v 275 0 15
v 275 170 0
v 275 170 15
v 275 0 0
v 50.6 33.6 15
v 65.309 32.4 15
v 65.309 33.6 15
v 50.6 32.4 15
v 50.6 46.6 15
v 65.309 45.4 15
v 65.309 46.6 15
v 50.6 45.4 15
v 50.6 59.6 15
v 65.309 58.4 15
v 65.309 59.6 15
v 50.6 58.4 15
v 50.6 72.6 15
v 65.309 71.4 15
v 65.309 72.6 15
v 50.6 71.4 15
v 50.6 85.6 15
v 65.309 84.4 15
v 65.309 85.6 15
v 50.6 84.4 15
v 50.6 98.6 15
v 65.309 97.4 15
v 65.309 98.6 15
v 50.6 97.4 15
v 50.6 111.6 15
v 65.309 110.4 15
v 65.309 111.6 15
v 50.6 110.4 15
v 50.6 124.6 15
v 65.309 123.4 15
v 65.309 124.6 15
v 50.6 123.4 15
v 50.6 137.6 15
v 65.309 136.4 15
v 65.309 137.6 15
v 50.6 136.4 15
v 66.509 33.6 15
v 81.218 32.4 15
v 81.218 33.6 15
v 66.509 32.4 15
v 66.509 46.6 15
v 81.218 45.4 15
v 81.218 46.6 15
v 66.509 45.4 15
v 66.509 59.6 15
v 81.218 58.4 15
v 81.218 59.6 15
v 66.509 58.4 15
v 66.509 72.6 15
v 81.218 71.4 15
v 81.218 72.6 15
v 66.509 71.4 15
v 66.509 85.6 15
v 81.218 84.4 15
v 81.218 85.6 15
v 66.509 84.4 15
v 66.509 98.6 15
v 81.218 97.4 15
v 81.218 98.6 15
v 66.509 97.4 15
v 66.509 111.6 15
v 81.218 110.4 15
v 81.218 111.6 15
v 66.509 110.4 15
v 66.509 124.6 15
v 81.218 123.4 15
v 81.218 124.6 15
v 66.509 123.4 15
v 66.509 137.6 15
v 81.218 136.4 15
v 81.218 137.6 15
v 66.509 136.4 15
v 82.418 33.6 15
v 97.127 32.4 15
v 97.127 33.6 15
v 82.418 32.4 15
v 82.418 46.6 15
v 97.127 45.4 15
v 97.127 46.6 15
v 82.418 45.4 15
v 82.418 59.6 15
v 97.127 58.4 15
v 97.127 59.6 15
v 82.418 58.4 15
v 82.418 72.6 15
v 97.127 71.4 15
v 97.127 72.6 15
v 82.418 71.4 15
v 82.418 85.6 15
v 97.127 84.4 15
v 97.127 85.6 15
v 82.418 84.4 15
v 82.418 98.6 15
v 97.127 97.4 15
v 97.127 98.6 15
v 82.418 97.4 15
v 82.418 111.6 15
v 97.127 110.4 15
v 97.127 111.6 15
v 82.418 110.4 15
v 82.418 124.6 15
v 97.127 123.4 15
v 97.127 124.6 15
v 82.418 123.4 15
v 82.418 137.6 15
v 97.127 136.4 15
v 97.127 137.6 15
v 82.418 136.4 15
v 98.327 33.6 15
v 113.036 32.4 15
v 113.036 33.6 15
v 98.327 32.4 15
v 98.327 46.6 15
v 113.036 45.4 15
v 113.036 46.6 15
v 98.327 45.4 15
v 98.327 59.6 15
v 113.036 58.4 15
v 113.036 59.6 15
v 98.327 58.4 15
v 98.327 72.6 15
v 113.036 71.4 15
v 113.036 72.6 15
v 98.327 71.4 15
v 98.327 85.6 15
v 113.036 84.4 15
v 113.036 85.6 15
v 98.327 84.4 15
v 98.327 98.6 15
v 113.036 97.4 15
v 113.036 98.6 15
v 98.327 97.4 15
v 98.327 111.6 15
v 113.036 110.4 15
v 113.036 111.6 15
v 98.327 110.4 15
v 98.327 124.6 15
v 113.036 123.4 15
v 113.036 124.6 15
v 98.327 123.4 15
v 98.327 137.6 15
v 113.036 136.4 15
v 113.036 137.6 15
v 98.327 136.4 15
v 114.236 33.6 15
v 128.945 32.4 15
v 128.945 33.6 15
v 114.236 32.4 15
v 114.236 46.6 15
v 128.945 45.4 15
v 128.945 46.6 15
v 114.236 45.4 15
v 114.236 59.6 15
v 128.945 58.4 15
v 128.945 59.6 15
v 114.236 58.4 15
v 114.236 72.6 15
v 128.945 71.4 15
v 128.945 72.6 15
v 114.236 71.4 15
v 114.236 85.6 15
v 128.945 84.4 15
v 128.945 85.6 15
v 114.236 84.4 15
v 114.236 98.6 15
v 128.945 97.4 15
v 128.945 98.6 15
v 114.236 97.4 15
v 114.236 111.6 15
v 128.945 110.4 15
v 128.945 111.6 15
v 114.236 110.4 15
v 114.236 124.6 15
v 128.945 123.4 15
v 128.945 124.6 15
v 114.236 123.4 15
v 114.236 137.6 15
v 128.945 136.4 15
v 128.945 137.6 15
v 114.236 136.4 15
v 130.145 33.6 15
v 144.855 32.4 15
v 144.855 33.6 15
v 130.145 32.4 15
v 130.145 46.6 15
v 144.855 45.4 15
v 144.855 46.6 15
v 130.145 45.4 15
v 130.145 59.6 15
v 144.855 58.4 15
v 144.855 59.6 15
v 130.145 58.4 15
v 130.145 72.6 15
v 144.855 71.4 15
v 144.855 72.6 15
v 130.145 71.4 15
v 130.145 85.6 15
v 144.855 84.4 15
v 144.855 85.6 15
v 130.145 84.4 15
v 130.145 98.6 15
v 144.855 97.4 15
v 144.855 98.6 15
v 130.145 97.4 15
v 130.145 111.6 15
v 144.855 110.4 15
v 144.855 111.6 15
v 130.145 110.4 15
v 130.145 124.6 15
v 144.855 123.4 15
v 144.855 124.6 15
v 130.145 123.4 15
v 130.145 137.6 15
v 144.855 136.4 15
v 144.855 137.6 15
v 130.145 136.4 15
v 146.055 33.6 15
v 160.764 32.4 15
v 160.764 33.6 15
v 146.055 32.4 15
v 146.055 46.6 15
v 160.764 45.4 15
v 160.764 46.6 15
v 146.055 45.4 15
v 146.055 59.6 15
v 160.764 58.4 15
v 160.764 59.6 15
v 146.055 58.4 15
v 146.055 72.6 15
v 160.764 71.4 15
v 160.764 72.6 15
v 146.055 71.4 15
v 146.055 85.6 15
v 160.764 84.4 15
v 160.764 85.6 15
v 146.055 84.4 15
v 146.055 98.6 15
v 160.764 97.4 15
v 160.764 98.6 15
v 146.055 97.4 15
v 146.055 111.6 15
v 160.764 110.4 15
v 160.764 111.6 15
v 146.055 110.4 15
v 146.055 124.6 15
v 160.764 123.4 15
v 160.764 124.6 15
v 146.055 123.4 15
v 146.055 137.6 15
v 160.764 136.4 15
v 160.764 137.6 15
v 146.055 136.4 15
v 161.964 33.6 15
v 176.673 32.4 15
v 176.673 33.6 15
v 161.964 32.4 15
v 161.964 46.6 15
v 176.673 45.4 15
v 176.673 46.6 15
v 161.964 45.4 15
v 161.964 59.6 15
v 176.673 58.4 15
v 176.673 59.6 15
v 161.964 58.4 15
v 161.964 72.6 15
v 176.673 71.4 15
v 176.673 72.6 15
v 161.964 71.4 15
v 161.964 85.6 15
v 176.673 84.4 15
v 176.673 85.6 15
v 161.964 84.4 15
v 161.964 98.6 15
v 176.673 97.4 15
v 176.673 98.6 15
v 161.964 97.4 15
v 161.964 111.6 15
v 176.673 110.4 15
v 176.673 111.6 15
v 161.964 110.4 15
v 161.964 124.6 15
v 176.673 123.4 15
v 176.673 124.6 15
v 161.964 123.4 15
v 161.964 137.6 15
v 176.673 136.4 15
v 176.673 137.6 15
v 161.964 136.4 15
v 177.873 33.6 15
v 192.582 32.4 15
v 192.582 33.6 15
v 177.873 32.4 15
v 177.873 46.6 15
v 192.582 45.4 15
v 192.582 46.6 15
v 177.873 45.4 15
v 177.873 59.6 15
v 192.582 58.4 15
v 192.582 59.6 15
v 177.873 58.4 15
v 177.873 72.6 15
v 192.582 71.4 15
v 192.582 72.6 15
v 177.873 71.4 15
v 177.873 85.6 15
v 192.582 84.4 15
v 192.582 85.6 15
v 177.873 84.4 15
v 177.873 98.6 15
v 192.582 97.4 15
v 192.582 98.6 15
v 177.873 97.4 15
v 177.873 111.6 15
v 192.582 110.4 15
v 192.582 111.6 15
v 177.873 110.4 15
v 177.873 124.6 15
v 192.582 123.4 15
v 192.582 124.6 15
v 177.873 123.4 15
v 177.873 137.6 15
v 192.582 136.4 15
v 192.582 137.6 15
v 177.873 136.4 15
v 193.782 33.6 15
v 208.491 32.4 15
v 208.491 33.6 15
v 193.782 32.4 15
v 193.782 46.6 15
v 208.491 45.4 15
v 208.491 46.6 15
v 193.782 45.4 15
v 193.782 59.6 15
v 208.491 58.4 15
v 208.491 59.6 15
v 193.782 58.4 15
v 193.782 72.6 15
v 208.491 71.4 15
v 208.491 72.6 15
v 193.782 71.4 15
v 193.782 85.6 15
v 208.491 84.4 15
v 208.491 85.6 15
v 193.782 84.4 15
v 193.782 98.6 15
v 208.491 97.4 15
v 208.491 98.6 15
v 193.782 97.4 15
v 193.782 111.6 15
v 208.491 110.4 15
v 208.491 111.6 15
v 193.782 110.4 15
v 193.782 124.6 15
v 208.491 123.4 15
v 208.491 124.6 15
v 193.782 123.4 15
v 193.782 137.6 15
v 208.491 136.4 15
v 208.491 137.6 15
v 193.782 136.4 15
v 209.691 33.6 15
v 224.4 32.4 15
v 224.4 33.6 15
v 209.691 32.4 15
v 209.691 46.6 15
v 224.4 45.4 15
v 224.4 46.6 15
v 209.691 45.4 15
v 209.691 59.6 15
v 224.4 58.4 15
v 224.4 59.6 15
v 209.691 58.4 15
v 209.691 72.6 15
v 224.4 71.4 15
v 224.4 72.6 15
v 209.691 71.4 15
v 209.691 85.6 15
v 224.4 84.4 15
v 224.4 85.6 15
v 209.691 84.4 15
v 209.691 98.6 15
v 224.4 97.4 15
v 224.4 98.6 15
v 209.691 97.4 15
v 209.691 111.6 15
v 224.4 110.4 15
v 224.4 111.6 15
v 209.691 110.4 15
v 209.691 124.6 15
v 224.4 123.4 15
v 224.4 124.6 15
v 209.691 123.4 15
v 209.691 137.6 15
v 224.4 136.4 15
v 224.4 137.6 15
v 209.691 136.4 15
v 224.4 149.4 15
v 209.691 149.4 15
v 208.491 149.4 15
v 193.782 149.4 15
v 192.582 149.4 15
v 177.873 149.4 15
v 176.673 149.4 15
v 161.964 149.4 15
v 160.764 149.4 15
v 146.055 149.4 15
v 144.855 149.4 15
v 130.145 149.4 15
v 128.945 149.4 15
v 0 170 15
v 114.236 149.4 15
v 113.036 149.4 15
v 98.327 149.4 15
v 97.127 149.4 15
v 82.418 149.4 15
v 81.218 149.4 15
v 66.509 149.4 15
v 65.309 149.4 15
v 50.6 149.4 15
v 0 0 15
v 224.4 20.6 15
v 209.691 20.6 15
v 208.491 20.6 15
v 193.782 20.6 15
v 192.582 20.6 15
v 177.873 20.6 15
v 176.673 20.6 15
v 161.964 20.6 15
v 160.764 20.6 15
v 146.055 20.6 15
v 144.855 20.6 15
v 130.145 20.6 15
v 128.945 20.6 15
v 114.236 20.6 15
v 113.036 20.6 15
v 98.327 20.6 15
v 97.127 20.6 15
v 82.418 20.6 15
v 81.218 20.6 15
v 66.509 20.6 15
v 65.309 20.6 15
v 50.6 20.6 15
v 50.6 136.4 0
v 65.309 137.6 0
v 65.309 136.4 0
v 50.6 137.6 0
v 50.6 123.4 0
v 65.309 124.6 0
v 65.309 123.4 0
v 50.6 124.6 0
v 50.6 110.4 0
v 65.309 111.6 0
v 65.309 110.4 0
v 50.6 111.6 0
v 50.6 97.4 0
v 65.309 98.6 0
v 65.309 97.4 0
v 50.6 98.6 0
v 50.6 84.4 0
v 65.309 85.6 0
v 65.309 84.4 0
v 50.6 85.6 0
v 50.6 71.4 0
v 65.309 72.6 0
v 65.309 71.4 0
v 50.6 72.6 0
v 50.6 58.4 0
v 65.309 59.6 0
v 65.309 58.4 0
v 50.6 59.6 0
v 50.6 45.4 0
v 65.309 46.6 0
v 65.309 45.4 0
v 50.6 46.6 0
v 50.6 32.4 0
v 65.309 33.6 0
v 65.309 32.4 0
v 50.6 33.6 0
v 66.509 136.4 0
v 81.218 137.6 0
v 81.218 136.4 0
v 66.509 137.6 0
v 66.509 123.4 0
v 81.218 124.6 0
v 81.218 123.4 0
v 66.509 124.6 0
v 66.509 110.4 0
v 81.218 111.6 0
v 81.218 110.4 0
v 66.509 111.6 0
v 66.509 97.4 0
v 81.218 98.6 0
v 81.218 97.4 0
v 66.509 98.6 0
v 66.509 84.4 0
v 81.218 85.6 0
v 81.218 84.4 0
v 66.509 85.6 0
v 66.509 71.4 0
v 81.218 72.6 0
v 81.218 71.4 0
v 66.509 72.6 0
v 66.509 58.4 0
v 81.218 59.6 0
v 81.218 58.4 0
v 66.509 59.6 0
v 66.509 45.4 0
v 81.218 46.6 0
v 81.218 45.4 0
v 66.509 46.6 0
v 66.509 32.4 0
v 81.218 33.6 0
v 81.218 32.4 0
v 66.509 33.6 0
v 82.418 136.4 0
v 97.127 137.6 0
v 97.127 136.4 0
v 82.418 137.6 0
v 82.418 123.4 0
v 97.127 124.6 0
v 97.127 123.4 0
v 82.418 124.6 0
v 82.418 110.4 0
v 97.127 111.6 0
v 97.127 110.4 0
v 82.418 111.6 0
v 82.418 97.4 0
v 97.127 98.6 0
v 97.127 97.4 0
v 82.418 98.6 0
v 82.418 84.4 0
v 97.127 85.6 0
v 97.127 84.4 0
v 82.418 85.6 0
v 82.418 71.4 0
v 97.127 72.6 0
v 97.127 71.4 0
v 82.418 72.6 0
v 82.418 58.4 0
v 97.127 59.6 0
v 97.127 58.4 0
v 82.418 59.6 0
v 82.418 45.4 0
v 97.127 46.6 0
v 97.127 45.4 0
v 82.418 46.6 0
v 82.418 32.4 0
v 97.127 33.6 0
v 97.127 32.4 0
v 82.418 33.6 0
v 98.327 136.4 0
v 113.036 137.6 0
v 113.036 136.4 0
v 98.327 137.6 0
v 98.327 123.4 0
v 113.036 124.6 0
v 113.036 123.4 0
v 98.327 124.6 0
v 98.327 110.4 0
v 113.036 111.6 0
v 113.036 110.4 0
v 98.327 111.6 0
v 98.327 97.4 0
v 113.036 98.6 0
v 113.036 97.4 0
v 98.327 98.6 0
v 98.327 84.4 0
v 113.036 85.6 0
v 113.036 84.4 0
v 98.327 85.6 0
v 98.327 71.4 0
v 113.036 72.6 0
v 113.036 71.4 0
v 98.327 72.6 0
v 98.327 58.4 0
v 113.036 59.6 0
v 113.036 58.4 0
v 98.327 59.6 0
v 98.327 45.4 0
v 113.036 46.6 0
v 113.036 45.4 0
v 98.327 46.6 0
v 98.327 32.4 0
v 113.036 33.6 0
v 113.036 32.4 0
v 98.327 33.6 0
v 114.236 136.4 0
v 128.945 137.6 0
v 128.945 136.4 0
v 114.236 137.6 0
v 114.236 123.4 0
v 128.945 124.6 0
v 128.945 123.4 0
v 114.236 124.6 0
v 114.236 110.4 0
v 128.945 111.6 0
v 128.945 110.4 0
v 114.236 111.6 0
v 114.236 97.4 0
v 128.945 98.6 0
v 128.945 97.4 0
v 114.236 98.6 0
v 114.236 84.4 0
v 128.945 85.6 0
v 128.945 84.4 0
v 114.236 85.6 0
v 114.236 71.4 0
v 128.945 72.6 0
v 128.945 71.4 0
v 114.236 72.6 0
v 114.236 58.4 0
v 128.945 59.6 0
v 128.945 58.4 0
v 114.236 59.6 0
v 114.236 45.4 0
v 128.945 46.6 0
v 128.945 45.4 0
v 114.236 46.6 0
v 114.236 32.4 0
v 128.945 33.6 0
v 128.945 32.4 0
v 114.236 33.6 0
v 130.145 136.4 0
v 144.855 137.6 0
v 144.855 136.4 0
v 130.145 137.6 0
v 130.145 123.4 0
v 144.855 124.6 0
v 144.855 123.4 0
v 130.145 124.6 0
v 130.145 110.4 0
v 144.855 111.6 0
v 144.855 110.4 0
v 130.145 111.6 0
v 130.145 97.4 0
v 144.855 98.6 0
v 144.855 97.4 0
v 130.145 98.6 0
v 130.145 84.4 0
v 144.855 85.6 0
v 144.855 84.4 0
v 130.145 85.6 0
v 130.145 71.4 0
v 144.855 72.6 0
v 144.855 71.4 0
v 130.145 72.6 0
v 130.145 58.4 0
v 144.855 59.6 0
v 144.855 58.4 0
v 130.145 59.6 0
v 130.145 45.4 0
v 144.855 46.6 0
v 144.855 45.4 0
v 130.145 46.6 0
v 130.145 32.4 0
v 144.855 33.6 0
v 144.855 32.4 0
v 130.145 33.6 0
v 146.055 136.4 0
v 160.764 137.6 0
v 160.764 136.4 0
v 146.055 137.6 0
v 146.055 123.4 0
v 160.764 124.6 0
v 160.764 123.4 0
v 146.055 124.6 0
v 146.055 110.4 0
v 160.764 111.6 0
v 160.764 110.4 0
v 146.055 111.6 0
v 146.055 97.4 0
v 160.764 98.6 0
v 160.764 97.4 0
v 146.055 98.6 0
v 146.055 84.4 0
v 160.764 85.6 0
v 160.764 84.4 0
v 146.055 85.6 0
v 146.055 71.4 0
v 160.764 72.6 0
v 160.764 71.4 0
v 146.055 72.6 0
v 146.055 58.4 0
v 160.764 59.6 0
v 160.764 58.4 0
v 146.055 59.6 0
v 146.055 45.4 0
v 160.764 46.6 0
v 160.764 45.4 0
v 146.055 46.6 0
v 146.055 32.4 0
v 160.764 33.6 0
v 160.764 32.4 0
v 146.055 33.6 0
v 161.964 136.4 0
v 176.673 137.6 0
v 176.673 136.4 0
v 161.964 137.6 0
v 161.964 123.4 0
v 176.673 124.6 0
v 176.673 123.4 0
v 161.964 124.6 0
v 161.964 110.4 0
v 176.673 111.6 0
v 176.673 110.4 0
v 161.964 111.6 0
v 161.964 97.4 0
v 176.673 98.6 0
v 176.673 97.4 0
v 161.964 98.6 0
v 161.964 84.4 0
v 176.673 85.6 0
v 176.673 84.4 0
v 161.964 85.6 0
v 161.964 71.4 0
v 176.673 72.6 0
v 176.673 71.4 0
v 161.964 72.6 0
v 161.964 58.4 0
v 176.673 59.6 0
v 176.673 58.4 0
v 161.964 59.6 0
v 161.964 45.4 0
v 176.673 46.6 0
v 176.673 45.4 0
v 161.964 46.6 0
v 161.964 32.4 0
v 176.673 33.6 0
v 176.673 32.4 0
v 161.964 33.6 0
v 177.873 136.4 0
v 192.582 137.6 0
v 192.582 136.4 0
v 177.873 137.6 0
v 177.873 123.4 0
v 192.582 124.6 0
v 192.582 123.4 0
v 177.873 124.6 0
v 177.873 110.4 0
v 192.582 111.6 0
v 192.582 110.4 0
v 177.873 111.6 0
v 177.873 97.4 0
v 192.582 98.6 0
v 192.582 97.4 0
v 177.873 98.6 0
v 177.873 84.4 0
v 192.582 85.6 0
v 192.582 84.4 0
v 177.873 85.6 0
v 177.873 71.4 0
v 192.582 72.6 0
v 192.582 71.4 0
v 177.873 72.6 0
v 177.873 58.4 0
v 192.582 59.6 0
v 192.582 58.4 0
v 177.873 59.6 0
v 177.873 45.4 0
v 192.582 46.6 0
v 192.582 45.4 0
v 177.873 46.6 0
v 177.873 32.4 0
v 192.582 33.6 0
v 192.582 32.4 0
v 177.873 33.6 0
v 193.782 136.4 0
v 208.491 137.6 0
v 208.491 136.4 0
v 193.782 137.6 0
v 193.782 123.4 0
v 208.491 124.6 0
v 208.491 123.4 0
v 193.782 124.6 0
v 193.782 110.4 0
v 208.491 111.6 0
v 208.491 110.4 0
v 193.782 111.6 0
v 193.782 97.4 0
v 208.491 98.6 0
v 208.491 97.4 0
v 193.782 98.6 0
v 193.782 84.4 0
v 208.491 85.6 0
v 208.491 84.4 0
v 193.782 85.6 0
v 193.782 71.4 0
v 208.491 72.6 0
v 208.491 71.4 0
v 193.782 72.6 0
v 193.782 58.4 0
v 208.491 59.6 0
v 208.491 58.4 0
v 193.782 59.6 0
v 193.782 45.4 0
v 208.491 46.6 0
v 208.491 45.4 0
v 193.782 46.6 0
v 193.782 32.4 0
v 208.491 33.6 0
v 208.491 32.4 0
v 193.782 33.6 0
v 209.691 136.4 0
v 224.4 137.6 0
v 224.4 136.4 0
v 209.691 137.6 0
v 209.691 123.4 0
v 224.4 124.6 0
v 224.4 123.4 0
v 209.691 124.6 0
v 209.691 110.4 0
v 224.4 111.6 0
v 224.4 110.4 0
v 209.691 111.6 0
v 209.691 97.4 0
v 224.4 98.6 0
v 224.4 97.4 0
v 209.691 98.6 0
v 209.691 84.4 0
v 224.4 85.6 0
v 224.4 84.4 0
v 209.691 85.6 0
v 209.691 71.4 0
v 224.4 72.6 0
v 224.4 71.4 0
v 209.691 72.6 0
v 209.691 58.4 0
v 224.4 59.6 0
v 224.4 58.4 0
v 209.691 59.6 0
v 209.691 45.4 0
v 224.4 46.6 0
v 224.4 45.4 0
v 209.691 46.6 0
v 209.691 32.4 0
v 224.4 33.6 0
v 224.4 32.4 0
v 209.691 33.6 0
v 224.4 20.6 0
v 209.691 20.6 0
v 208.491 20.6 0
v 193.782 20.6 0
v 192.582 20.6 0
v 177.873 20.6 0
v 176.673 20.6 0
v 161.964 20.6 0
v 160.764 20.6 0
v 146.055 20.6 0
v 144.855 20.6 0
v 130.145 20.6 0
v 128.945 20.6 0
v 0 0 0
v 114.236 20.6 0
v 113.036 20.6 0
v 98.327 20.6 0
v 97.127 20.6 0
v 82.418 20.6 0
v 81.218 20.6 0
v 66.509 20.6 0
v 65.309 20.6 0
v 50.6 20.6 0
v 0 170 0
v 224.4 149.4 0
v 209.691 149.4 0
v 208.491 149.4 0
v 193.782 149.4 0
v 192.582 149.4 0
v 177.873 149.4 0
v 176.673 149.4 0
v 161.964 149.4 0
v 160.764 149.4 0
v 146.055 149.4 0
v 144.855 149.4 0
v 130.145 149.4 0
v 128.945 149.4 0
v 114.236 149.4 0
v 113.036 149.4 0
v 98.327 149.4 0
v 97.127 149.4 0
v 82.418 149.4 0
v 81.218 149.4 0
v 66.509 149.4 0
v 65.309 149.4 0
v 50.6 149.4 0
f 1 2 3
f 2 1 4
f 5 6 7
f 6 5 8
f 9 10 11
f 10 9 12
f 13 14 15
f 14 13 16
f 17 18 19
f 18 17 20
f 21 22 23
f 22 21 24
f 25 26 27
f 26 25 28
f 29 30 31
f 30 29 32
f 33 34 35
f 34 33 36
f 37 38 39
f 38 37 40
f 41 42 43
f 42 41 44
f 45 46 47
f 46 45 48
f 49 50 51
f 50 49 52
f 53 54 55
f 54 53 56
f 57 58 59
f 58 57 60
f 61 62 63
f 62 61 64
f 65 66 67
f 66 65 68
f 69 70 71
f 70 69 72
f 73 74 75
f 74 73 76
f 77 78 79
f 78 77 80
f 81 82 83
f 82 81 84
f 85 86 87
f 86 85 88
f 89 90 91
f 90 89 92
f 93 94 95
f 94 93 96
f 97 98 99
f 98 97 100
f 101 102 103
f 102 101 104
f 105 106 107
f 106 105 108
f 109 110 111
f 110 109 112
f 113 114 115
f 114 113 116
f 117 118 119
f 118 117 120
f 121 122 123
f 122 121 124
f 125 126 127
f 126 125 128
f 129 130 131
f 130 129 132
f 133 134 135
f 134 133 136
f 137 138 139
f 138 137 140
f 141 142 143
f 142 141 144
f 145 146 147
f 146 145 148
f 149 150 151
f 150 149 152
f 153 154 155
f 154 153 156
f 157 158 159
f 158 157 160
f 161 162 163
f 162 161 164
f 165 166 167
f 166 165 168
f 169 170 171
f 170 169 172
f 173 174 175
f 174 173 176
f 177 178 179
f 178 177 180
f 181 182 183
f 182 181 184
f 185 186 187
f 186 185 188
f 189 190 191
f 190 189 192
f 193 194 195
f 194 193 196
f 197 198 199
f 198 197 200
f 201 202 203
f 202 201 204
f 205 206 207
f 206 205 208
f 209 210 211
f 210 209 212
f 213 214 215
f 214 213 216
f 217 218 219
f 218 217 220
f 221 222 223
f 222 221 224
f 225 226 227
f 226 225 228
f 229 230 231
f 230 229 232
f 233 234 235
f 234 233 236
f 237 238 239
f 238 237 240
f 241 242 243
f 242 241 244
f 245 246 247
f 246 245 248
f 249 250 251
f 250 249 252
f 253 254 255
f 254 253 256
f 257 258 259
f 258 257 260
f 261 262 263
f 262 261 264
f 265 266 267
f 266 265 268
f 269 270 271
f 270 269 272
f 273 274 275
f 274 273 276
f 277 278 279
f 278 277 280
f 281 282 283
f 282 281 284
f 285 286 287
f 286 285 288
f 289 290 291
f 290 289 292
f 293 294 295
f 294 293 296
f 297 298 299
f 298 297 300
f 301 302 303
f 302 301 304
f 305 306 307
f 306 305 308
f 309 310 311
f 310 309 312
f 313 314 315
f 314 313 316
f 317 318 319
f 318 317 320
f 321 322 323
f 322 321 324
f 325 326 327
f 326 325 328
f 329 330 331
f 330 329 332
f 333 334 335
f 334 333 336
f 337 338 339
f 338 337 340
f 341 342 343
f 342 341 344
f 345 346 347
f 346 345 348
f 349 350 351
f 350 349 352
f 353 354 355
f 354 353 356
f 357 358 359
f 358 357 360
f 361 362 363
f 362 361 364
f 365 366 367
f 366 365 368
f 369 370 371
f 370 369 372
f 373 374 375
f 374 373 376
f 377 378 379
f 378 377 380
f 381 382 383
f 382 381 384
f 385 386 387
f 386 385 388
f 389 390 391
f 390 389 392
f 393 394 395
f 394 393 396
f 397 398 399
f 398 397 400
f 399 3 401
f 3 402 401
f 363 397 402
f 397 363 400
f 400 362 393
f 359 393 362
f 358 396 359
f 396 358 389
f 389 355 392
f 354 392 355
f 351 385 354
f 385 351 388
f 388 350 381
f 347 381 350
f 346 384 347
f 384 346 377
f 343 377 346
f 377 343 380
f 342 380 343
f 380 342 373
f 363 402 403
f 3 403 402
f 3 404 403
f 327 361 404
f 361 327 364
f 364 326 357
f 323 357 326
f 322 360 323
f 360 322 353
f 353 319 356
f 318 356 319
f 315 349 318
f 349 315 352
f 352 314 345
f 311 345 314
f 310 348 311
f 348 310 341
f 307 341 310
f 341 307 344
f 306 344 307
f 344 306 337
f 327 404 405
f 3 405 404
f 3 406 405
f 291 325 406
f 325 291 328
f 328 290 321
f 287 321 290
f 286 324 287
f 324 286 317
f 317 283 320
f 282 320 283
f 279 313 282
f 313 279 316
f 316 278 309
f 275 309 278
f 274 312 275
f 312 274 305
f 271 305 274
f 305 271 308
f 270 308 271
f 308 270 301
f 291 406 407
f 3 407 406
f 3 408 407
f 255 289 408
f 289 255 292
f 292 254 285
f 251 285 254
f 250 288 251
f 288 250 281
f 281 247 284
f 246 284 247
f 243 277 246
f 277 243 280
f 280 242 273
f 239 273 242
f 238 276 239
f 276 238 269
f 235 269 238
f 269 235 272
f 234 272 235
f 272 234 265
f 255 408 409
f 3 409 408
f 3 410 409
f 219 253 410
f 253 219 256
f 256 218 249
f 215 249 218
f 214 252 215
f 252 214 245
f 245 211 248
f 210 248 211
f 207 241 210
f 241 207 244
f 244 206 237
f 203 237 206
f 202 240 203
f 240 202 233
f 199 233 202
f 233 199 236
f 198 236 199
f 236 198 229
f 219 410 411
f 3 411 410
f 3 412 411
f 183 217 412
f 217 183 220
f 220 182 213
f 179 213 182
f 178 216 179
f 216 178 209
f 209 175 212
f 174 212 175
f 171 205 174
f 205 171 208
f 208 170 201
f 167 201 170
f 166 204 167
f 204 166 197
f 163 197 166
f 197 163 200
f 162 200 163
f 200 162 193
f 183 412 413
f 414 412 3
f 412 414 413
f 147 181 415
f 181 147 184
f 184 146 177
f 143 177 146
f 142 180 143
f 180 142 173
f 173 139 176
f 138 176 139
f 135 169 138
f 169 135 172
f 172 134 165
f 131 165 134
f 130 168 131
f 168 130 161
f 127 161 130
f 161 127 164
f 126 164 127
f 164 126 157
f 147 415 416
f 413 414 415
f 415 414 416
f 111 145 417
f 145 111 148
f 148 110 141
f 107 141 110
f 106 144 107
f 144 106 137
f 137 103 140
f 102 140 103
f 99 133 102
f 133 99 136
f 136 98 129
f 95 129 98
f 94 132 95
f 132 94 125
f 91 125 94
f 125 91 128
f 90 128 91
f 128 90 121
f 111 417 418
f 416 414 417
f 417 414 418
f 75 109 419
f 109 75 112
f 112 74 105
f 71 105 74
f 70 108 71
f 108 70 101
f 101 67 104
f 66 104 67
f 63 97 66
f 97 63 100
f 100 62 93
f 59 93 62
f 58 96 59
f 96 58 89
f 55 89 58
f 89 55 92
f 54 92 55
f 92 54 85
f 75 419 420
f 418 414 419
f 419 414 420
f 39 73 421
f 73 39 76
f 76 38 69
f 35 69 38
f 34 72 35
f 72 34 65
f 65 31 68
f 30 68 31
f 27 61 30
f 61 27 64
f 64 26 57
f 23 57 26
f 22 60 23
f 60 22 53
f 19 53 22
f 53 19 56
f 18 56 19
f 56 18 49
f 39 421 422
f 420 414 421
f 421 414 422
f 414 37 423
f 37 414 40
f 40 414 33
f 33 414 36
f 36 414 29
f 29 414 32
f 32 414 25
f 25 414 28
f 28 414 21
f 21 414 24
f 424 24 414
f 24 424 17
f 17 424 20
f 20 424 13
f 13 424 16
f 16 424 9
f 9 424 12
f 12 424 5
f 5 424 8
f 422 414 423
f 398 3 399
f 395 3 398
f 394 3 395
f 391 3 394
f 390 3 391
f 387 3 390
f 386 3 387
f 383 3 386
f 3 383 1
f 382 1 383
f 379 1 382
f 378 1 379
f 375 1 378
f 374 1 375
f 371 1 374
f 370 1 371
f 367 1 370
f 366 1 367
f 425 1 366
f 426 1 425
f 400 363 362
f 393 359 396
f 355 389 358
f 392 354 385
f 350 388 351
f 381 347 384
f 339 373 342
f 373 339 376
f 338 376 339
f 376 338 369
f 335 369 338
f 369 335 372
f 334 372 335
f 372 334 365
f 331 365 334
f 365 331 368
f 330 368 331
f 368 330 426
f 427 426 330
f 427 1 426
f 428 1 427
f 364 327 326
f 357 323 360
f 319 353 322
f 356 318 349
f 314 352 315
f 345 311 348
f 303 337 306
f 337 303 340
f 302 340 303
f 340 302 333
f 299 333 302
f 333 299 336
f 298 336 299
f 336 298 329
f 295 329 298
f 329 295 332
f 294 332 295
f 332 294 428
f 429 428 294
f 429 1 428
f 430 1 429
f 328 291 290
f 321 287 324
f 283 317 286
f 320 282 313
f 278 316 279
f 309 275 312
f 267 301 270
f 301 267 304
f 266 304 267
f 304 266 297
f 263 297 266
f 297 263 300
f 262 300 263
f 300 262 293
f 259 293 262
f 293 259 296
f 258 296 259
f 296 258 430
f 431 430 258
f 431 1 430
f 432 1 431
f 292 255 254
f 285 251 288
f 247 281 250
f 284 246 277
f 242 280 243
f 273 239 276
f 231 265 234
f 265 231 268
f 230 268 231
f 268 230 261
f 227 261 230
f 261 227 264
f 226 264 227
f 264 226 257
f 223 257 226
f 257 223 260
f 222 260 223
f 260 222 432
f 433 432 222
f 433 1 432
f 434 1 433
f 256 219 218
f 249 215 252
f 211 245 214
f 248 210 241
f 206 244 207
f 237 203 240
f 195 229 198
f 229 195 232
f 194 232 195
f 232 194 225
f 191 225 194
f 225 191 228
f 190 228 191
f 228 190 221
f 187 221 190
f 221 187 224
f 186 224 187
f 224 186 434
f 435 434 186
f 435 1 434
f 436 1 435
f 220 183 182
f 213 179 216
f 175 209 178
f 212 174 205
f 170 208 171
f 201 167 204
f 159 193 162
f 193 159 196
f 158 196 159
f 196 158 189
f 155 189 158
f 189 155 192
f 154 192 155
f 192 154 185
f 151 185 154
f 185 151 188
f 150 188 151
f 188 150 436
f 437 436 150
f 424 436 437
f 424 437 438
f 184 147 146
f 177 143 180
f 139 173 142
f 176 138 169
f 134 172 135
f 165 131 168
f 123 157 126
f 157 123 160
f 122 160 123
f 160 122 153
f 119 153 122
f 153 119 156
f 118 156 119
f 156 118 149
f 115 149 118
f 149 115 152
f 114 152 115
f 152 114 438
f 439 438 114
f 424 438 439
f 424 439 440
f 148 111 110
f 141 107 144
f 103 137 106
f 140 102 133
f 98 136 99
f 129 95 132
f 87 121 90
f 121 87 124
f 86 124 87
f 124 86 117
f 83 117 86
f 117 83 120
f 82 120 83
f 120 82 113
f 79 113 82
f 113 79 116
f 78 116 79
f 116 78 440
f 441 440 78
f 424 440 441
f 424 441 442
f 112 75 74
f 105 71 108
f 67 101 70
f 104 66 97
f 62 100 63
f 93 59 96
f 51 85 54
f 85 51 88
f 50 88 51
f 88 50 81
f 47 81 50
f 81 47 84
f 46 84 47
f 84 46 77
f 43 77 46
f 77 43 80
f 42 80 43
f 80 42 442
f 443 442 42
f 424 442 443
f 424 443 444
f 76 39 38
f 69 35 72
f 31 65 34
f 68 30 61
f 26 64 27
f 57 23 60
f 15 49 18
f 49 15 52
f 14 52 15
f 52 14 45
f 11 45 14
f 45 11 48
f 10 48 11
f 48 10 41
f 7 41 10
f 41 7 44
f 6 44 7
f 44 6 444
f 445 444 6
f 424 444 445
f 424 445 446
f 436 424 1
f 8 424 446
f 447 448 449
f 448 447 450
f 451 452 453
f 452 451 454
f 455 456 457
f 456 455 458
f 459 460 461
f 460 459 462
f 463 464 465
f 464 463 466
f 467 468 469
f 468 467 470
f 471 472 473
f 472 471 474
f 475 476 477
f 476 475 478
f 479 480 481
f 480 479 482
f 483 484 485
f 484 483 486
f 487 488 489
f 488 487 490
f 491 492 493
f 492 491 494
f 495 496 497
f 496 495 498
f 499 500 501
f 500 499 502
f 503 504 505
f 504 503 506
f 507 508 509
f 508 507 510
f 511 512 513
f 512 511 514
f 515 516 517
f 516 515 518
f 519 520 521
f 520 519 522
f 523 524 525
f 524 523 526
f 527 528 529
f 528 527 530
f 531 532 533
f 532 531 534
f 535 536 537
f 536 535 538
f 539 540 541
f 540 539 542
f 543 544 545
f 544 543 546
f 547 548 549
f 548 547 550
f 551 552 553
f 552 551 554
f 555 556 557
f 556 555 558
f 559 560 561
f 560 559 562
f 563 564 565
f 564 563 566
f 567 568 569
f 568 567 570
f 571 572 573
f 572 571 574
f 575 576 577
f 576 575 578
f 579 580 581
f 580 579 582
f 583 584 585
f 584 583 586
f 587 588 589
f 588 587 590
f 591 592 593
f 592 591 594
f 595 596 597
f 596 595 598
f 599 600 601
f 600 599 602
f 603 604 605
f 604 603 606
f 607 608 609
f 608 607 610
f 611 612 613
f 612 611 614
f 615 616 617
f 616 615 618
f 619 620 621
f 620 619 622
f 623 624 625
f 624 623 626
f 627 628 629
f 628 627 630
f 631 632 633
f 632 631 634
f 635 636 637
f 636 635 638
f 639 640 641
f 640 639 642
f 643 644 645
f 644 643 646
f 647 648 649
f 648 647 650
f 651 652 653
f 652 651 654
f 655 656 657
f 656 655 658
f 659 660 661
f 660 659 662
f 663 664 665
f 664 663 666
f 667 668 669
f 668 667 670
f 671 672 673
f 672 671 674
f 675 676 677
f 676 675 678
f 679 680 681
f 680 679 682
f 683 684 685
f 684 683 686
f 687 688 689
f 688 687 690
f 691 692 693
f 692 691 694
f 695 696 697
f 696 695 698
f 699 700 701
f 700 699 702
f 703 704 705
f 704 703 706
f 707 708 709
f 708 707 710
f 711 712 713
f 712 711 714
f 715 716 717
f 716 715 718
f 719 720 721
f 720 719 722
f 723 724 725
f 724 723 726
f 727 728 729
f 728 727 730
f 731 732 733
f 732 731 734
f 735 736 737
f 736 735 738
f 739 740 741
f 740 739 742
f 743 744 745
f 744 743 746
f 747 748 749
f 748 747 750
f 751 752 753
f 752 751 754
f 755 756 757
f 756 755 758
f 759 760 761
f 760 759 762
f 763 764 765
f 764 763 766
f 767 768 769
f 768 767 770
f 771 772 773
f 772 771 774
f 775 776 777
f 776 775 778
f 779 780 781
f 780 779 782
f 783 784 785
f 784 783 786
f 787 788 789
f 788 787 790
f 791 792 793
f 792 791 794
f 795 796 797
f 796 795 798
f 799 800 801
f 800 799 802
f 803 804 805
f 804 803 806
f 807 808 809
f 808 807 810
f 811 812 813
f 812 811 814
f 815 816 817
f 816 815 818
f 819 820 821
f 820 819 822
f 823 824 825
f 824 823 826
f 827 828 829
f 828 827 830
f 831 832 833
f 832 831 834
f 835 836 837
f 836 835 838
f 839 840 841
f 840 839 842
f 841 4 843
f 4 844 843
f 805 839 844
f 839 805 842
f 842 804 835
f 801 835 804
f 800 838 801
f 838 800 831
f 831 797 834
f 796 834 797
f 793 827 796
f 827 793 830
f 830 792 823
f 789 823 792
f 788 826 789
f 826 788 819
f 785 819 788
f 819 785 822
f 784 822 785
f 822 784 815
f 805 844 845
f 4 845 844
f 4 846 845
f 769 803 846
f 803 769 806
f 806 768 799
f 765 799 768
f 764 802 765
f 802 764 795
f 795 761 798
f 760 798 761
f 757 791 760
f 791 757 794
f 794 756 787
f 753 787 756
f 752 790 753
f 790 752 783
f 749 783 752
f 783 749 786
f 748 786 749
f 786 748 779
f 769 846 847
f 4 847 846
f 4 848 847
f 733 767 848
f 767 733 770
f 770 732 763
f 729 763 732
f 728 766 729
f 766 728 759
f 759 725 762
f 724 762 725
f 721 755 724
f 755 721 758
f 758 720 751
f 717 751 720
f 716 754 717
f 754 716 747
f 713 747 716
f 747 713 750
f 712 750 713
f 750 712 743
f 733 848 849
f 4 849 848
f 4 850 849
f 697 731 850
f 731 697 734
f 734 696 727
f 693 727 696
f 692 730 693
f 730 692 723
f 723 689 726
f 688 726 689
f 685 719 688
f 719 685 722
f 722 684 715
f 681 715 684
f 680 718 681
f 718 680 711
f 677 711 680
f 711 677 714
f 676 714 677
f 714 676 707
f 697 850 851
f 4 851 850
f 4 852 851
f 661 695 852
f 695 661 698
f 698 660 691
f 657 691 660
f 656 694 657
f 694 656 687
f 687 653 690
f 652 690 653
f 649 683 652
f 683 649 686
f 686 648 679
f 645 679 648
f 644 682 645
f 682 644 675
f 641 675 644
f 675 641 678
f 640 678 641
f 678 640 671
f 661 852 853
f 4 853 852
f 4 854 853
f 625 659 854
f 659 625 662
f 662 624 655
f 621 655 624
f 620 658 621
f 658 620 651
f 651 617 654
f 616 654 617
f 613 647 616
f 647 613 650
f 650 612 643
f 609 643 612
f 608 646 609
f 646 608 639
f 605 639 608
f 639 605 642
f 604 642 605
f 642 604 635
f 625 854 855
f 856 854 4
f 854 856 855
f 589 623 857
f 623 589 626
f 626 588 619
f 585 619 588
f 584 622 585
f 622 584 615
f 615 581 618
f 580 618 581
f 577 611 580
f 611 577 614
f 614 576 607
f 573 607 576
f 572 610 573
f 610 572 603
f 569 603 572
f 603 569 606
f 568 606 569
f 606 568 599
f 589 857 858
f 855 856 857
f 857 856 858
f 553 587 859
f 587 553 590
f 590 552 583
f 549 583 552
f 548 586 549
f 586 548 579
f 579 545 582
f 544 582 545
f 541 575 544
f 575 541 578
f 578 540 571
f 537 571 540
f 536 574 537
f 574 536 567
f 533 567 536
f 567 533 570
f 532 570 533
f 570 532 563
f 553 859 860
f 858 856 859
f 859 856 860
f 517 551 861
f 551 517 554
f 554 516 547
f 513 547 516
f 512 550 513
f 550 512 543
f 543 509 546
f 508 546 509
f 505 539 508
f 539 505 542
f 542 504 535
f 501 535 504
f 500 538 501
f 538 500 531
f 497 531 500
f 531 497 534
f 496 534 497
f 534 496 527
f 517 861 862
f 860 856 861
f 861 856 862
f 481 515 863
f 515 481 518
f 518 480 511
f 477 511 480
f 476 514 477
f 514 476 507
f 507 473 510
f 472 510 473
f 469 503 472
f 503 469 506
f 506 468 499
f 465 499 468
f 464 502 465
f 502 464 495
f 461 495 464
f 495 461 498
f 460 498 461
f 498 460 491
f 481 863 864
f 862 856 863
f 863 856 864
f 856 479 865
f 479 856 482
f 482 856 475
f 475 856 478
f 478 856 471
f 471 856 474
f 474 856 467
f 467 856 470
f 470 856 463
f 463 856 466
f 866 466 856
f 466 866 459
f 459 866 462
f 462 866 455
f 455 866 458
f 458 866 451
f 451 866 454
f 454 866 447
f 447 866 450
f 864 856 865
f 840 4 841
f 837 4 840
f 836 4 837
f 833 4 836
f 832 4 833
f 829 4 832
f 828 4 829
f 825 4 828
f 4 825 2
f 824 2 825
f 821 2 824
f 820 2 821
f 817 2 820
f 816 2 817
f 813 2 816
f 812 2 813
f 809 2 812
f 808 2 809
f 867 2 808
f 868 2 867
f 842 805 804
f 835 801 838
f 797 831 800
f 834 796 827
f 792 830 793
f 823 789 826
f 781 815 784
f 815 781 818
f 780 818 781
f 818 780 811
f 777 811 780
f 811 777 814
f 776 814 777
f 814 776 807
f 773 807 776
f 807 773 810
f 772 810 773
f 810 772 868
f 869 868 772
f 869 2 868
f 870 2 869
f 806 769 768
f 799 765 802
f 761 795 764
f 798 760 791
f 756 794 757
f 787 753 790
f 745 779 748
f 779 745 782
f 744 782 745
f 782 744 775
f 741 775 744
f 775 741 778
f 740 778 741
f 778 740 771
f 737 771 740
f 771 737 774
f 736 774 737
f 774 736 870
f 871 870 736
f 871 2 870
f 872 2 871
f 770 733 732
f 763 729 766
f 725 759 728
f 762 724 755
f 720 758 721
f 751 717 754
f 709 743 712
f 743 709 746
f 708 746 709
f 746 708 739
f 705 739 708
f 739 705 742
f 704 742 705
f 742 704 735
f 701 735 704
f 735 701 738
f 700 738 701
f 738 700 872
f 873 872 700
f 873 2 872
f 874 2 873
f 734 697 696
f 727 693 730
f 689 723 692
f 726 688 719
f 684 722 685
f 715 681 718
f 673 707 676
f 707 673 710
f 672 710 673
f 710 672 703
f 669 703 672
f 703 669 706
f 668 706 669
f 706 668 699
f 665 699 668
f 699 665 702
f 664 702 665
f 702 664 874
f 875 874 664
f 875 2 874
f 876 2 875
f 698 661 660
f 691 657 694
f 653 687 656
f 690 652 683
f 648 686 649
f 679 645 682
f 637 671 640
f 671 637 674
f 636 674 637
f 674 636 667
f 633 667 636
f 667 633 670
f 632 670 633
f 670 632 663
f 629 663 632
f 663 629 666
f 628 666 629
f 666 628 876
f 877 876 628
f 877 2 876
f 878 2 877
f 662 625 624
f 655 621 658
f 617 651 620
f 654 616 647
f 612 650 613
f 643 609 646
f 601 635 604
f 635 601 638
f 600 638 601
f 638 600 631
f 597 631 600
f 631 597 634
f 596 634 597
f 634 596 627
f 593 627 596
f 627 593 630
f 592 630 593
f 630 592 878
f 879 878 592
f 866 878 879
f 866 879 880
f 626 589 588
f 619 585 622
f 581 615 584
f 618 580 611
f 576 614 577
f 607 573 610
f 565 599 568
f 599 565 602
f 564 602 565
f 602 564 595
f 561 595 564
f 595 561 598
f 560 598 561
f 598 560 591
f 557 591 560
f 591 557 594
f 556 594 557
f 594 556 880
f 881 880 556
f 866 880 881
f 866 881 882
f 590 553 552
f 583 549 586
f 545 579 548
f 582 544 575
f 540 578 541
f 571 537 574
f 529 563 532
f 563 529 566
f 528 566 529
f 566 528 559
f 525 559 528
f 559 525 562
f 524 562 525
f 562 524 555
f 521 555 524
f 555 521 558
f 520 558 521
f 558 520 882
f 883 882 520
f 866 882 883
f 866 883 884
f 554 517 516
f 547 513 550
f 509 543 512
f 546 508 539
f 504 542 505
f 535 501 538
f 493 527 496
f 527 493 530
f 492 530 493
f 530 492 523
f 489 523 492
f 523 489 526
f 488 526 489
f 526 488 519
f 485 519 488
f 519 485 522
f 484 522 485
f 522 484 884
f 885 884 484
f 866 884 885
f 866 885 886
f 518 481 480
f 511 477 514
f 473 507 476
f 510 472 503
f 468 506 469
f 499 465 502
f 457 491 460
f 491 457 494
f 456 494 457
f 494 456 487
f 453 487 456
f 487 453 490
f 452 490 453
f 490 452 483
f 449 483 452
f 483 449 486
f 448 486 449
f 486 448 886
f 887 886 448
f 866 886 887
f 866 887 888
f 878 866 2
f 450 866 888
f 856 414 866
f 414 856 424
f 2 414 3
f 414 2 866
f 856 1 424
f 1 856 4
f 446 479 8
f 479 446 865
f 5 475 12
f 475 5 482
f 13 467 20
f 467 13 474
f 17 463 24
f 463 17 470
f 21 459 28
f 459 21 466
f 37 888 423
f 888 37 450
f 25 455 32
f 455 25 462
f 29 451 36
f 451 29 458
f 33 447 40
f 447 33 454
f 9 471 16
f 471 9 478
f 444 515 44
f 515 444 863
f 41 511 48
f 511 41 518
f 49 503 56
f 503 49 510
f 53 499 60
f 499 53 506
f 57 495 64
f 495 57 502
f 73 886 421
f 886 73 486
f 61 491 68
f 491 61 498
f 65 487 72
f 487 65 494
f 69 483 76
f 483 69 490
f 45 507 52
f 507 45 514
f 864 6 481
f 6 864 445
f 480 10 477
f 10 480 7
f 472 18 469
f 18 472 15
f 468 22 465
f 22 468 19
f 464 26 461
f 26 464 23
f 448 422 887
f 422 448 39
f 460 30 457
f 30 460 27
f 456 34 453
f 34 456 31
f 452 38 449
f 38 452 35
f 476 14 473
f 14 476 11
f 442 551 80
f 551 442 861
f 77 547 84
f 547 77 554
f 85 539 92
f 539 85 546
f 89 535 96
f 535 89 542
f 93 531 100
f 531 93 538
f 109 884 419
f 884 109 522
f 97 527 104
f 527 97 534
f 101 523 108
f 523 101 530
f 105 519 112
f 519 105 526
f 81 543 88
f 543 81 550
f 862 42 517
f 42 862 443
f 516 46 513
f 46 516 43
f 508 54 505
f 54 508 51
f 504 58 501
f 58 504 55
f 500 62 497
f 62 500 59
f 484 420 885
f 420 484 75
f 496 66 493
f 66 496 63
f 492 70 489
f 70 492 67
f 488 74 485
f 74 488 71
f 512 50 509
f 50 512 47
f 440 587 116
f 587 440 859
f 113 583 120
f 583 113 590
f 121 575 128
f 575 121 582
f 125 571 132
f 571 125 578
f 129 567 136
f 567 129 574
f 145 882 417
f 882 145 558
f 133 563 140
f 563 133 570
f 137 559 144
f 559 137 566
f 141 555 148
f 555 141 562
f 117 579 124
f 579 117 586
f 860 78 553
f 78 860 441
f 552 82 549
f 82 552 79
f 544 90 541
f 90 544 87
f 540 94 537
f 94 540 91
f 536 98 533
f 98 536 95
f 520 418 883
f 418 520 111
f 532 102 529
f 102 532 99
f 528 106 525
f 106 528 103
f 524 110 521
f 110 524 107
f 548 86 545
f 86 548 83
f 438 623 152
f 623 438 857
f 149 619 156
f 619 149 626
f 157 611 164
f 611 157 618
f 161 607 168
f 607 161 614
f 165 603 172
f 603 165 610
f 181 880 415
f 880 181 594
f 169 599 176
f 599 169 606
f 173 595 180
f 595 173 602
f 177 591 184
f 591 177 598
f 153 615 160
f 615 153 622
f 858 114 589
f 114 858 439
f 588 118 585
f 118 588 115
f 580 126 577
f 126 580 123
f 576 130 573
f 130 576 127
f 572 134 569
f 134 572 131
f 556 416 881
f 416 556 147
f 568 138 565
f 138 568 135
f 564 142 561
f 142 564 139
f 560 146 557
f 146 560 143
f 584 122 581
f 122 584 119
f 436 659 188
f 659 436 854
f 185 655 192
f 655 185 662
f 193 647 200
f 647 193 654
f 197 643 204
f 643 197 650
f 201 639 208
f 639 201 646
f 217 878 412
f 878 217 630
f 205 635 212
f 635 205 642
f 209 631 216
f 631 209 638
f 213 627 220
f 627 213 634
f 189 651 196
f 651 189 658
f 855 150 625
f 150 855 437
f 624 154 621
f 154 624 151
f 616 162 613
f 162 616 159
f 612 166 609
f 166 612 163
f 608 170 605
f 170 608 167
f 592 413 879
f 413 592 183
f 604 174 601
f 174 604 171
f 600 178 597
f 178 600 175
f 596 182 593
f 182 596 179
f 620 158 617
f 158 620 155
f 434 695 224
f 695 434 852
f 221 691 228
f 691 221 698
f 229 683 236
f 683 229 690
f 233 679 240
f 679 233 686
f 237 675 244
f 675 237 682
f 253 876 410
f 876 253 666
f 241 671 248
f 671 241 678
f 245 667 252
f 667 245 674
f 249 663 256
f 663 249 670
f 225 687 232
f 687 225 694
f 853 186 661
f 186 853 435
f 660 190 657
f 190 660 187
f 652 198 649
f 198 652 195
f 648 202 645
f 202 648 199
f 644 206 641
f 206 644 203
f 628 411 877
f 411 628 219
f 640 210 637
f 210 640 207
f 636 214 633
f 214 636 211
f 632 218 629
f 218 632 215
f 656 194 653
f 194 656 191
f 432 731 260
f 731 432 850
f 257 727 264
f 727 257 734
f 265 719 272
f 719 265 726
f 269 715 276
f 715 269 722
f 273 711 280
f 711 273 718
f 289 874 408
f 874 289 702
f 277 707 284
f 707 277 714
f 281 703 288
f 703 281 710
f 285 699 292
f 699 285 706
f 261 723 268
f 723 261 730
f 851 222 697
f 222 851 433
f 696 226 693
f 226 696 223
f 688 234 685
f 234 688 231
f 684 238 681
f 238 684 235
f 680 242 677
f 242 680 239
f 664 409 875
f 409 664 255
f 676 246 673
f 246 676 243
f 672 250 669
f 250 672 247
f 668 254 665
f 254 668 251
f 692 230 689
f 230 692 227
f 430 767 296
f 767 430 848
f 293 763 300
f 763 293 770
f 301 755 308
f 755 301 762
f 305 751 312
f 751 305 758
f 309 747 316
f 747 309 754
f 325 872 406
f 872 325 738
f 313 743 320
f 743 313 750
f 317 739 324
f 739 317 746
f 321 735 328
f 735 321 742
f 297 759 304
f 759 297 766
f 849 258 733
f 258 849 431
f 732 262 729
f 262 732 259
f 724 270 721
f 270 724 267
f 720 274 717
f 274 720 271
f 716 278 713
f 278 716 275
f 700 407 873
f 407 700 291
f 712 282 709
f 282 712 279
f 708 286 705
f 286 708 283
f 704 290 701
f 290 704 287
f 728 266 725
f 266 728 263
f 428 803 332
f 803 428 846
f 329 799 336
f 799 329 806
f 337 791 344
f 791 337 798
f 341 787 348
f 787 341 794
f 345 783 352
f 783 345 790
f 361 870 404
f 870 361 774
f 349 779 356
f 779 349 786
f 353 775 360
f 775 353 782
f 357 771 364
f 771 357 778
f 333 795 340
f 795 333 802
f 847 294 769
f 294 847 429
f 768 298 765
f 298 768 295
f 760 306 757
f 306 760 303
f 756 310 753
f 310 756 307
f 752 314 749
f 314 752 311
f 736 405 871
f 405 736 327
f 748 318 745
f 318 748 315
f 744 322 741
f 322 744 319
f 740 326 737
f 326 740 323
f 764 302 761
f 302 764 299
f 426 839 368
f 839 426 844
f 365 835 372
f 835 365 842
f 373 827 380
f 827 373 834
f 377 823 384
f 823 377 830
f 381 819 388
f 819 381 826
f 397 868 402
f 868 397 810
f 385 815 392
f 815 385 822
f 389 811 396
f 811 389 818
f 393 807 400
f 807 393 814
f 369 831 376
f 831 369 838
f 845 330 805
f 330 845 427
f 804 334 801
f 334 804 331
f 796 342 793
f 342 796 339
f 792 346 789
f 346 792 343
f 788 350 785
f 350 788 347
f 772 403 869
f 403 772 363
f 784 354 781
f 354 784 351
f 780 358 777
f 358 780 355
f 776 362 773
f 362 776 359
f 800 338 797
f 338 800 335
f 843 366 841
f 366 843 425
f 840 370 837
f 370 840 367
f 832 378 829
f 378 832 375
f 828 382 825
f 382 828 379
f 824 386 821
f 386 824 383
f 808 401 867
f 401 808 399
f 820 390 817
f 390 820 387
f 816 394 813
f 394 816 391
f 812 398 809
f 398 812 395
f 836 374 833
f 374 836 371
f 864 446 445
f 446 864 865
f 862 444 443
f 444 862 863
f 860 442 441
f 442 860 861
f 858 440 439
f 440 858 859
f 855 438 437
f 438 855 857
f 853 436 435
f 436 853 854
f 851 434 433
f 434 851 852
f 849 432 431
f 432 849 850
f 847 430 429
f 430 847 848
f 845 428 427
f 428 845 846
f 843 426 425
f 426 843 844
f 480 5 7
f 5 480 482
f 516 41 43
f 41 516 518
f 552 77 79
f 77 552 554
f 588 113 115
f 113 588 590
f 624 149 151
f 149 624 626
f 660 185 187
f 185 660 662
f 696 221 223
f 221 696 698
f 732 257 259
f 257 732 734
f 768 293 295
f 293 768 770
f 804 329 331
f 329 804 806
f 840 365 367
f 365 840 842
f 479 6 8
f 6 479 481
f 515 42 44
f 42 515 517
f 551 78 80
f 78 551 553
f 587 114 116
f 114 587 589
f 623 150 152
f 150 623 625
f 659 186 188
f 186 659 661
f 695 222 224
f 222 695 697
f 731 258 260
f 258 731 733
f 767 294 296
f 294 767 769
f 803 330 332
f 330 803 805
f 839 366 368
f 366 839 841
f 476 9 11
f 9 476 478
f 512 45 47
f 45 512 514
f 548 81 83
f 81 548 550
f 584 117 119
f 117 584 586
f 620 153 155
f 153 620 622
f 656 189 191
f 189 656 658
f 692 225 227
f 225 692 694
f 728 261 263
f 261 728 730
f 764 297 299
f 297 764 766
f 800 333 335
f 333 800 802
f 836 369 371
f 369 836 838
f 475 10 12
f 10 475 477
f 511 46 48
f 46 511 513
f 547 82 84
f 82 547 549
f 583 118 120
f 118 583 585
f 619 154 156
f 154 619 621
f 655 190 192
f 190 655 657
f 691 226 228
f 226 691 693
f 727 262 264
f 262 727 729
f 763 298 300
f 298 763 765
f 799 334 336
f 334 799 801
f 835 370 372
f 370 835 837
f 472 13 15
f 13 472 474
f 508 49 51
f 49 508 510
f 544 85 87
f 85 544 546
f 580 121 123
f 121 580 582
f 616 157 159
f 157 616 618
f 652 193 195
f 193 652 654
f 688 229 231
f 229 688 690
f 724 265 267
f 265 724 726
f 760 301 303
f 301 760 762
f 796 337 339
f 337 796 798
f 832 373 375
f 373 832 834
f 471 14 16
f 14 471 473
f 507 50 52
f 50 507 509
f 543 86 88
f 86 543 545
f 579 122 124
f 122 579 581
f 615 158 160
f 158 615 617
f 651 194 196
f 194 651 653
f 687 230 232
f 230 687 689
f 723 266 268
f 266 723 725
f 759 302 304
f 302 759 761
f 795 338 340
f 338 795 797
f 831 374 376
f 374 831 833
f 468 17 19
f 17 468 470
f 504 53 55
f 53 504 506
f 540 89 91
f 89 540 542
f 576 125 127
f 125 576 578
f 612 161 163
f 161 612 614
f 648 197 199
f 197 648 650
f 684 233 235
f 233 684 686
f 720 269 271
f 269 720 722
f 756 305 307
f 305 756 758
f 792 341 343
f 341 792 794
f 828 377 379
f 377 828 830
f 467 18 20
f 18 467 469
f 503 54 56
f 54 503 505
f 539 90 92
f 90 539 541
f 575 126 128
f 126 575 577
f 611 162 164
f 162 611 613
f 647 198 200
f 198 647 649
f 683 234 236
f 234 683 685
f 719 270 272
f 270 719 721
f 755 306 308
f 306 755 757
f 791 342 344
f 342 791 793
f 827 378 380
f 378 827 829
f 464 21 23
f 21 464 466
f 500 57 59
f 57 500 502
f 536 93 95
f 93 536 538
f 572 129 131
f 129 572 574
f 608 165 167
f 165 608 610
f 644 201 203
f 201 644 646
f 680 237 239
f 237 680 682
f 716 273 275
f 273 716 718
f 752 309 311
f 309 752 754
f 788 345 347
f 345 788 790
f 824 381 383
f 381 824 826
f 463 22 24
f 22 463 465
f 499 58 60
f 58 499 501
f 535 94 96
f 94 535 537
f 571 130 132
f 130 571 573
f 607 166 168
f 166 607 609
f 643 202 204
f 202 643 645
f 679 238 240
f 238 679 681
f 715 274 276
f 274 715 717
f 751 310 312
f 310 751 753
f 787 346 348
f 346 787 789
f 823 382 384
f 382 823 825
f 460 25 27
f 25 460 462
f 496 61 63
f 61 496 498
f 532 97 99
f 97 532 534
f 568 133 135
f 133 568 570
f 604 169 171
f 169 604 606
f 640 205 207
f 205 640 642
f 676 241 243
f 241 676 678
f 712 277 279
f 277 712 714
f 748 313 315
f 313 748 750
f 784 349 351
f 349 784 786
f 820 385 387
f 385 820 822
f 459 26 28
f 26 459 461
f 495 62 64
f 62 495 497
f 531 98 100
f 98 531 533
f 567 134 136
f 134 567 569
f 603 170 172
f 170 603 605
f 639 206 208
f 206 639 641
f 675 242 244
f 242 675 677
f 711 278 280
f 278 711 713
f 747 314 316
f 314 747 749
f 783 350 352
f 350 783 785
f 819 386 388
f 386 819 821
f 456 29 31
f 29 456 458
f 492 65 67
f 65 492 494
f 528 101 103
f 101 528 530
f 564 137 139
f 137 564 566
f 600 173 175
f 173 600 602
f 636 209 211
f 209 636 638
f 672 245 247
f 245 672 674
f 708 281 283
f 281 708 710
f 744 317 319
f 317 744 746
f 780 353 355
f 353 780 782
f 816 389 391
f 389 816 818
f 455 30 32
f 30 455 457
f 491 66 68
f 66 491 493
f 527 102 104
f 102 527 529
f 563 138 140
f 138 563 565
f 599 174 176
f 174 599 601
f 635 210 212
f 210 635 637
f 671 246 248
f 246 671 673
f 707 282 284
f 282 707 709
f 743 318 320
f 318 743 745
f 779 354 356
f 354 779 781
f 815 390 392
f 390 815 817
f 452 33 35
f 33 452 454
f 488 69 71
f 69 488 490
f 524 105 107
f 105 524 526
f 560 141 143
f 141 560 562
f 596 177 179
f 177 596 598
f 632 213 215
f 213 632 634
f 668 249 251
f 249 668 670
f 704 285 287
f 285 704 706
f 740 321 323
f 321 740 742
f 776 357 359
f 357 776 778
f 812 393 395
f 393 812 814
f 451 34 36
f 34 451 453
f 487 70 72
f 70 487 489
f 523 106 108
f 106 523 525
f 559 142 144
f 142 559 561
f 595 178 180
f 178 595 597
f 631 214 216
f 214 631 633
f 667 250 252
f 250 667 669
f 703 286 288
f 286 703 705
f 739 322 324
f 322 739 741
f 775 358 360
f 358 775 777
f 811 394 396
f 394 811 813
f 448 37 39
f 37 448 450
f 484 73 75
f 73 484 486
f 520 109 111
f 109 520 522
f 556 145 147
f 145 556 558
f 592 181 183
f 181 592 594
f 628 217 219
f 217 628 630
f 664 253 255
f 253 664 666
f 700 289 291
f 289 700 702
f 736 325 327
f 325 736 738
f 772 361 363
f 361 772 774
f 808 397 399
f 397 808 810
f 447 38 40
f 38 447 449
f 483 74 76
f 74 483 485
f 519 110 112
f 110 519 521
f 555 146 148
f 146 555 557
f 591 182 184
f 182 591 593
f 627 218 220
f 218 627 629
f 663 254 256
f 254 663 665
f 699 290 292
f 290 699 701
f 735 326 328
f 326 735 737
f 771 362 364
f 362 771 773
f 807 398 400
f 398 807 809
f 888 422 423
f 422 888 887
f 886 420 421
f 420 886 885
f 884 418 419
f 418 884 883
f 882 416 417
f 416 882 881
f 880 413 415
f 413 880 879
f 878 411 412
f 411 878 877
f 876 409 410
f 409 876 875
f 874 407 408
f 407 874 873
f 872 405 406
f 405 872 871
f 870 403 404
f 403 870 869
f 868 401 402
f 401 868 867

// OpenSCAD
// Word Clock Light Diverter (Baffle)
// Matches word_clock_stencil.scad dimensions

// Inner grid dimensions [cite: 1, 2]
width = 175;
height = 130;

// Grid layout 
cols = 11;
rows = 10;

// Border offsets [cite: 3]
border_lr = 50; // left & right
border_tb = 20; // top & bottom

// Baffle Specific Settings
baffle_height = 15;    // Depth of the light chambers
wall_thickness = 1.2;  // Thickness of the internal walls
base_thickness = 0;  // Thickness of the back plate (set to 0 if not needed)

// Calculated cell sizes [cite: 5]
cell_w = width / cols;
cell_h = height / rows;

// Outer dimensions [cite: 4]
outer_width  = width  + border_lr * 2;
outer_height = height + border_tb * 2;

union() {
    // 1. Base Plate (Optional: connects all baffles together)
    if (base_thickness > 0) {
        cube([outer_width, outer_height, base_thickness]);
    }

    // 2. Outer Border Walls
    difference() {
        cube([outer_width, outer_height, baffle_height]);
        translate([border_lr, border_tb, -1])
            cube([width, height, baffle_height + 2]);
    }

    // 3. Vertical Internal Walls
    for (i = [0 : cols]) {
        translate([border_lr + i * cell_w - wall_thickness / 2, border_tb, 0])
            cube([wall_thickness, height, baffle_height]);
    }

    // 4. Horizontal Internal Walls
    for (j = [0 : rows]) {
        translate([border_lr, border_tb + j * cell_h - wall_thickness / 2, 0])
            cube([width, wall_thickness, baffle_height]);
    }
}
